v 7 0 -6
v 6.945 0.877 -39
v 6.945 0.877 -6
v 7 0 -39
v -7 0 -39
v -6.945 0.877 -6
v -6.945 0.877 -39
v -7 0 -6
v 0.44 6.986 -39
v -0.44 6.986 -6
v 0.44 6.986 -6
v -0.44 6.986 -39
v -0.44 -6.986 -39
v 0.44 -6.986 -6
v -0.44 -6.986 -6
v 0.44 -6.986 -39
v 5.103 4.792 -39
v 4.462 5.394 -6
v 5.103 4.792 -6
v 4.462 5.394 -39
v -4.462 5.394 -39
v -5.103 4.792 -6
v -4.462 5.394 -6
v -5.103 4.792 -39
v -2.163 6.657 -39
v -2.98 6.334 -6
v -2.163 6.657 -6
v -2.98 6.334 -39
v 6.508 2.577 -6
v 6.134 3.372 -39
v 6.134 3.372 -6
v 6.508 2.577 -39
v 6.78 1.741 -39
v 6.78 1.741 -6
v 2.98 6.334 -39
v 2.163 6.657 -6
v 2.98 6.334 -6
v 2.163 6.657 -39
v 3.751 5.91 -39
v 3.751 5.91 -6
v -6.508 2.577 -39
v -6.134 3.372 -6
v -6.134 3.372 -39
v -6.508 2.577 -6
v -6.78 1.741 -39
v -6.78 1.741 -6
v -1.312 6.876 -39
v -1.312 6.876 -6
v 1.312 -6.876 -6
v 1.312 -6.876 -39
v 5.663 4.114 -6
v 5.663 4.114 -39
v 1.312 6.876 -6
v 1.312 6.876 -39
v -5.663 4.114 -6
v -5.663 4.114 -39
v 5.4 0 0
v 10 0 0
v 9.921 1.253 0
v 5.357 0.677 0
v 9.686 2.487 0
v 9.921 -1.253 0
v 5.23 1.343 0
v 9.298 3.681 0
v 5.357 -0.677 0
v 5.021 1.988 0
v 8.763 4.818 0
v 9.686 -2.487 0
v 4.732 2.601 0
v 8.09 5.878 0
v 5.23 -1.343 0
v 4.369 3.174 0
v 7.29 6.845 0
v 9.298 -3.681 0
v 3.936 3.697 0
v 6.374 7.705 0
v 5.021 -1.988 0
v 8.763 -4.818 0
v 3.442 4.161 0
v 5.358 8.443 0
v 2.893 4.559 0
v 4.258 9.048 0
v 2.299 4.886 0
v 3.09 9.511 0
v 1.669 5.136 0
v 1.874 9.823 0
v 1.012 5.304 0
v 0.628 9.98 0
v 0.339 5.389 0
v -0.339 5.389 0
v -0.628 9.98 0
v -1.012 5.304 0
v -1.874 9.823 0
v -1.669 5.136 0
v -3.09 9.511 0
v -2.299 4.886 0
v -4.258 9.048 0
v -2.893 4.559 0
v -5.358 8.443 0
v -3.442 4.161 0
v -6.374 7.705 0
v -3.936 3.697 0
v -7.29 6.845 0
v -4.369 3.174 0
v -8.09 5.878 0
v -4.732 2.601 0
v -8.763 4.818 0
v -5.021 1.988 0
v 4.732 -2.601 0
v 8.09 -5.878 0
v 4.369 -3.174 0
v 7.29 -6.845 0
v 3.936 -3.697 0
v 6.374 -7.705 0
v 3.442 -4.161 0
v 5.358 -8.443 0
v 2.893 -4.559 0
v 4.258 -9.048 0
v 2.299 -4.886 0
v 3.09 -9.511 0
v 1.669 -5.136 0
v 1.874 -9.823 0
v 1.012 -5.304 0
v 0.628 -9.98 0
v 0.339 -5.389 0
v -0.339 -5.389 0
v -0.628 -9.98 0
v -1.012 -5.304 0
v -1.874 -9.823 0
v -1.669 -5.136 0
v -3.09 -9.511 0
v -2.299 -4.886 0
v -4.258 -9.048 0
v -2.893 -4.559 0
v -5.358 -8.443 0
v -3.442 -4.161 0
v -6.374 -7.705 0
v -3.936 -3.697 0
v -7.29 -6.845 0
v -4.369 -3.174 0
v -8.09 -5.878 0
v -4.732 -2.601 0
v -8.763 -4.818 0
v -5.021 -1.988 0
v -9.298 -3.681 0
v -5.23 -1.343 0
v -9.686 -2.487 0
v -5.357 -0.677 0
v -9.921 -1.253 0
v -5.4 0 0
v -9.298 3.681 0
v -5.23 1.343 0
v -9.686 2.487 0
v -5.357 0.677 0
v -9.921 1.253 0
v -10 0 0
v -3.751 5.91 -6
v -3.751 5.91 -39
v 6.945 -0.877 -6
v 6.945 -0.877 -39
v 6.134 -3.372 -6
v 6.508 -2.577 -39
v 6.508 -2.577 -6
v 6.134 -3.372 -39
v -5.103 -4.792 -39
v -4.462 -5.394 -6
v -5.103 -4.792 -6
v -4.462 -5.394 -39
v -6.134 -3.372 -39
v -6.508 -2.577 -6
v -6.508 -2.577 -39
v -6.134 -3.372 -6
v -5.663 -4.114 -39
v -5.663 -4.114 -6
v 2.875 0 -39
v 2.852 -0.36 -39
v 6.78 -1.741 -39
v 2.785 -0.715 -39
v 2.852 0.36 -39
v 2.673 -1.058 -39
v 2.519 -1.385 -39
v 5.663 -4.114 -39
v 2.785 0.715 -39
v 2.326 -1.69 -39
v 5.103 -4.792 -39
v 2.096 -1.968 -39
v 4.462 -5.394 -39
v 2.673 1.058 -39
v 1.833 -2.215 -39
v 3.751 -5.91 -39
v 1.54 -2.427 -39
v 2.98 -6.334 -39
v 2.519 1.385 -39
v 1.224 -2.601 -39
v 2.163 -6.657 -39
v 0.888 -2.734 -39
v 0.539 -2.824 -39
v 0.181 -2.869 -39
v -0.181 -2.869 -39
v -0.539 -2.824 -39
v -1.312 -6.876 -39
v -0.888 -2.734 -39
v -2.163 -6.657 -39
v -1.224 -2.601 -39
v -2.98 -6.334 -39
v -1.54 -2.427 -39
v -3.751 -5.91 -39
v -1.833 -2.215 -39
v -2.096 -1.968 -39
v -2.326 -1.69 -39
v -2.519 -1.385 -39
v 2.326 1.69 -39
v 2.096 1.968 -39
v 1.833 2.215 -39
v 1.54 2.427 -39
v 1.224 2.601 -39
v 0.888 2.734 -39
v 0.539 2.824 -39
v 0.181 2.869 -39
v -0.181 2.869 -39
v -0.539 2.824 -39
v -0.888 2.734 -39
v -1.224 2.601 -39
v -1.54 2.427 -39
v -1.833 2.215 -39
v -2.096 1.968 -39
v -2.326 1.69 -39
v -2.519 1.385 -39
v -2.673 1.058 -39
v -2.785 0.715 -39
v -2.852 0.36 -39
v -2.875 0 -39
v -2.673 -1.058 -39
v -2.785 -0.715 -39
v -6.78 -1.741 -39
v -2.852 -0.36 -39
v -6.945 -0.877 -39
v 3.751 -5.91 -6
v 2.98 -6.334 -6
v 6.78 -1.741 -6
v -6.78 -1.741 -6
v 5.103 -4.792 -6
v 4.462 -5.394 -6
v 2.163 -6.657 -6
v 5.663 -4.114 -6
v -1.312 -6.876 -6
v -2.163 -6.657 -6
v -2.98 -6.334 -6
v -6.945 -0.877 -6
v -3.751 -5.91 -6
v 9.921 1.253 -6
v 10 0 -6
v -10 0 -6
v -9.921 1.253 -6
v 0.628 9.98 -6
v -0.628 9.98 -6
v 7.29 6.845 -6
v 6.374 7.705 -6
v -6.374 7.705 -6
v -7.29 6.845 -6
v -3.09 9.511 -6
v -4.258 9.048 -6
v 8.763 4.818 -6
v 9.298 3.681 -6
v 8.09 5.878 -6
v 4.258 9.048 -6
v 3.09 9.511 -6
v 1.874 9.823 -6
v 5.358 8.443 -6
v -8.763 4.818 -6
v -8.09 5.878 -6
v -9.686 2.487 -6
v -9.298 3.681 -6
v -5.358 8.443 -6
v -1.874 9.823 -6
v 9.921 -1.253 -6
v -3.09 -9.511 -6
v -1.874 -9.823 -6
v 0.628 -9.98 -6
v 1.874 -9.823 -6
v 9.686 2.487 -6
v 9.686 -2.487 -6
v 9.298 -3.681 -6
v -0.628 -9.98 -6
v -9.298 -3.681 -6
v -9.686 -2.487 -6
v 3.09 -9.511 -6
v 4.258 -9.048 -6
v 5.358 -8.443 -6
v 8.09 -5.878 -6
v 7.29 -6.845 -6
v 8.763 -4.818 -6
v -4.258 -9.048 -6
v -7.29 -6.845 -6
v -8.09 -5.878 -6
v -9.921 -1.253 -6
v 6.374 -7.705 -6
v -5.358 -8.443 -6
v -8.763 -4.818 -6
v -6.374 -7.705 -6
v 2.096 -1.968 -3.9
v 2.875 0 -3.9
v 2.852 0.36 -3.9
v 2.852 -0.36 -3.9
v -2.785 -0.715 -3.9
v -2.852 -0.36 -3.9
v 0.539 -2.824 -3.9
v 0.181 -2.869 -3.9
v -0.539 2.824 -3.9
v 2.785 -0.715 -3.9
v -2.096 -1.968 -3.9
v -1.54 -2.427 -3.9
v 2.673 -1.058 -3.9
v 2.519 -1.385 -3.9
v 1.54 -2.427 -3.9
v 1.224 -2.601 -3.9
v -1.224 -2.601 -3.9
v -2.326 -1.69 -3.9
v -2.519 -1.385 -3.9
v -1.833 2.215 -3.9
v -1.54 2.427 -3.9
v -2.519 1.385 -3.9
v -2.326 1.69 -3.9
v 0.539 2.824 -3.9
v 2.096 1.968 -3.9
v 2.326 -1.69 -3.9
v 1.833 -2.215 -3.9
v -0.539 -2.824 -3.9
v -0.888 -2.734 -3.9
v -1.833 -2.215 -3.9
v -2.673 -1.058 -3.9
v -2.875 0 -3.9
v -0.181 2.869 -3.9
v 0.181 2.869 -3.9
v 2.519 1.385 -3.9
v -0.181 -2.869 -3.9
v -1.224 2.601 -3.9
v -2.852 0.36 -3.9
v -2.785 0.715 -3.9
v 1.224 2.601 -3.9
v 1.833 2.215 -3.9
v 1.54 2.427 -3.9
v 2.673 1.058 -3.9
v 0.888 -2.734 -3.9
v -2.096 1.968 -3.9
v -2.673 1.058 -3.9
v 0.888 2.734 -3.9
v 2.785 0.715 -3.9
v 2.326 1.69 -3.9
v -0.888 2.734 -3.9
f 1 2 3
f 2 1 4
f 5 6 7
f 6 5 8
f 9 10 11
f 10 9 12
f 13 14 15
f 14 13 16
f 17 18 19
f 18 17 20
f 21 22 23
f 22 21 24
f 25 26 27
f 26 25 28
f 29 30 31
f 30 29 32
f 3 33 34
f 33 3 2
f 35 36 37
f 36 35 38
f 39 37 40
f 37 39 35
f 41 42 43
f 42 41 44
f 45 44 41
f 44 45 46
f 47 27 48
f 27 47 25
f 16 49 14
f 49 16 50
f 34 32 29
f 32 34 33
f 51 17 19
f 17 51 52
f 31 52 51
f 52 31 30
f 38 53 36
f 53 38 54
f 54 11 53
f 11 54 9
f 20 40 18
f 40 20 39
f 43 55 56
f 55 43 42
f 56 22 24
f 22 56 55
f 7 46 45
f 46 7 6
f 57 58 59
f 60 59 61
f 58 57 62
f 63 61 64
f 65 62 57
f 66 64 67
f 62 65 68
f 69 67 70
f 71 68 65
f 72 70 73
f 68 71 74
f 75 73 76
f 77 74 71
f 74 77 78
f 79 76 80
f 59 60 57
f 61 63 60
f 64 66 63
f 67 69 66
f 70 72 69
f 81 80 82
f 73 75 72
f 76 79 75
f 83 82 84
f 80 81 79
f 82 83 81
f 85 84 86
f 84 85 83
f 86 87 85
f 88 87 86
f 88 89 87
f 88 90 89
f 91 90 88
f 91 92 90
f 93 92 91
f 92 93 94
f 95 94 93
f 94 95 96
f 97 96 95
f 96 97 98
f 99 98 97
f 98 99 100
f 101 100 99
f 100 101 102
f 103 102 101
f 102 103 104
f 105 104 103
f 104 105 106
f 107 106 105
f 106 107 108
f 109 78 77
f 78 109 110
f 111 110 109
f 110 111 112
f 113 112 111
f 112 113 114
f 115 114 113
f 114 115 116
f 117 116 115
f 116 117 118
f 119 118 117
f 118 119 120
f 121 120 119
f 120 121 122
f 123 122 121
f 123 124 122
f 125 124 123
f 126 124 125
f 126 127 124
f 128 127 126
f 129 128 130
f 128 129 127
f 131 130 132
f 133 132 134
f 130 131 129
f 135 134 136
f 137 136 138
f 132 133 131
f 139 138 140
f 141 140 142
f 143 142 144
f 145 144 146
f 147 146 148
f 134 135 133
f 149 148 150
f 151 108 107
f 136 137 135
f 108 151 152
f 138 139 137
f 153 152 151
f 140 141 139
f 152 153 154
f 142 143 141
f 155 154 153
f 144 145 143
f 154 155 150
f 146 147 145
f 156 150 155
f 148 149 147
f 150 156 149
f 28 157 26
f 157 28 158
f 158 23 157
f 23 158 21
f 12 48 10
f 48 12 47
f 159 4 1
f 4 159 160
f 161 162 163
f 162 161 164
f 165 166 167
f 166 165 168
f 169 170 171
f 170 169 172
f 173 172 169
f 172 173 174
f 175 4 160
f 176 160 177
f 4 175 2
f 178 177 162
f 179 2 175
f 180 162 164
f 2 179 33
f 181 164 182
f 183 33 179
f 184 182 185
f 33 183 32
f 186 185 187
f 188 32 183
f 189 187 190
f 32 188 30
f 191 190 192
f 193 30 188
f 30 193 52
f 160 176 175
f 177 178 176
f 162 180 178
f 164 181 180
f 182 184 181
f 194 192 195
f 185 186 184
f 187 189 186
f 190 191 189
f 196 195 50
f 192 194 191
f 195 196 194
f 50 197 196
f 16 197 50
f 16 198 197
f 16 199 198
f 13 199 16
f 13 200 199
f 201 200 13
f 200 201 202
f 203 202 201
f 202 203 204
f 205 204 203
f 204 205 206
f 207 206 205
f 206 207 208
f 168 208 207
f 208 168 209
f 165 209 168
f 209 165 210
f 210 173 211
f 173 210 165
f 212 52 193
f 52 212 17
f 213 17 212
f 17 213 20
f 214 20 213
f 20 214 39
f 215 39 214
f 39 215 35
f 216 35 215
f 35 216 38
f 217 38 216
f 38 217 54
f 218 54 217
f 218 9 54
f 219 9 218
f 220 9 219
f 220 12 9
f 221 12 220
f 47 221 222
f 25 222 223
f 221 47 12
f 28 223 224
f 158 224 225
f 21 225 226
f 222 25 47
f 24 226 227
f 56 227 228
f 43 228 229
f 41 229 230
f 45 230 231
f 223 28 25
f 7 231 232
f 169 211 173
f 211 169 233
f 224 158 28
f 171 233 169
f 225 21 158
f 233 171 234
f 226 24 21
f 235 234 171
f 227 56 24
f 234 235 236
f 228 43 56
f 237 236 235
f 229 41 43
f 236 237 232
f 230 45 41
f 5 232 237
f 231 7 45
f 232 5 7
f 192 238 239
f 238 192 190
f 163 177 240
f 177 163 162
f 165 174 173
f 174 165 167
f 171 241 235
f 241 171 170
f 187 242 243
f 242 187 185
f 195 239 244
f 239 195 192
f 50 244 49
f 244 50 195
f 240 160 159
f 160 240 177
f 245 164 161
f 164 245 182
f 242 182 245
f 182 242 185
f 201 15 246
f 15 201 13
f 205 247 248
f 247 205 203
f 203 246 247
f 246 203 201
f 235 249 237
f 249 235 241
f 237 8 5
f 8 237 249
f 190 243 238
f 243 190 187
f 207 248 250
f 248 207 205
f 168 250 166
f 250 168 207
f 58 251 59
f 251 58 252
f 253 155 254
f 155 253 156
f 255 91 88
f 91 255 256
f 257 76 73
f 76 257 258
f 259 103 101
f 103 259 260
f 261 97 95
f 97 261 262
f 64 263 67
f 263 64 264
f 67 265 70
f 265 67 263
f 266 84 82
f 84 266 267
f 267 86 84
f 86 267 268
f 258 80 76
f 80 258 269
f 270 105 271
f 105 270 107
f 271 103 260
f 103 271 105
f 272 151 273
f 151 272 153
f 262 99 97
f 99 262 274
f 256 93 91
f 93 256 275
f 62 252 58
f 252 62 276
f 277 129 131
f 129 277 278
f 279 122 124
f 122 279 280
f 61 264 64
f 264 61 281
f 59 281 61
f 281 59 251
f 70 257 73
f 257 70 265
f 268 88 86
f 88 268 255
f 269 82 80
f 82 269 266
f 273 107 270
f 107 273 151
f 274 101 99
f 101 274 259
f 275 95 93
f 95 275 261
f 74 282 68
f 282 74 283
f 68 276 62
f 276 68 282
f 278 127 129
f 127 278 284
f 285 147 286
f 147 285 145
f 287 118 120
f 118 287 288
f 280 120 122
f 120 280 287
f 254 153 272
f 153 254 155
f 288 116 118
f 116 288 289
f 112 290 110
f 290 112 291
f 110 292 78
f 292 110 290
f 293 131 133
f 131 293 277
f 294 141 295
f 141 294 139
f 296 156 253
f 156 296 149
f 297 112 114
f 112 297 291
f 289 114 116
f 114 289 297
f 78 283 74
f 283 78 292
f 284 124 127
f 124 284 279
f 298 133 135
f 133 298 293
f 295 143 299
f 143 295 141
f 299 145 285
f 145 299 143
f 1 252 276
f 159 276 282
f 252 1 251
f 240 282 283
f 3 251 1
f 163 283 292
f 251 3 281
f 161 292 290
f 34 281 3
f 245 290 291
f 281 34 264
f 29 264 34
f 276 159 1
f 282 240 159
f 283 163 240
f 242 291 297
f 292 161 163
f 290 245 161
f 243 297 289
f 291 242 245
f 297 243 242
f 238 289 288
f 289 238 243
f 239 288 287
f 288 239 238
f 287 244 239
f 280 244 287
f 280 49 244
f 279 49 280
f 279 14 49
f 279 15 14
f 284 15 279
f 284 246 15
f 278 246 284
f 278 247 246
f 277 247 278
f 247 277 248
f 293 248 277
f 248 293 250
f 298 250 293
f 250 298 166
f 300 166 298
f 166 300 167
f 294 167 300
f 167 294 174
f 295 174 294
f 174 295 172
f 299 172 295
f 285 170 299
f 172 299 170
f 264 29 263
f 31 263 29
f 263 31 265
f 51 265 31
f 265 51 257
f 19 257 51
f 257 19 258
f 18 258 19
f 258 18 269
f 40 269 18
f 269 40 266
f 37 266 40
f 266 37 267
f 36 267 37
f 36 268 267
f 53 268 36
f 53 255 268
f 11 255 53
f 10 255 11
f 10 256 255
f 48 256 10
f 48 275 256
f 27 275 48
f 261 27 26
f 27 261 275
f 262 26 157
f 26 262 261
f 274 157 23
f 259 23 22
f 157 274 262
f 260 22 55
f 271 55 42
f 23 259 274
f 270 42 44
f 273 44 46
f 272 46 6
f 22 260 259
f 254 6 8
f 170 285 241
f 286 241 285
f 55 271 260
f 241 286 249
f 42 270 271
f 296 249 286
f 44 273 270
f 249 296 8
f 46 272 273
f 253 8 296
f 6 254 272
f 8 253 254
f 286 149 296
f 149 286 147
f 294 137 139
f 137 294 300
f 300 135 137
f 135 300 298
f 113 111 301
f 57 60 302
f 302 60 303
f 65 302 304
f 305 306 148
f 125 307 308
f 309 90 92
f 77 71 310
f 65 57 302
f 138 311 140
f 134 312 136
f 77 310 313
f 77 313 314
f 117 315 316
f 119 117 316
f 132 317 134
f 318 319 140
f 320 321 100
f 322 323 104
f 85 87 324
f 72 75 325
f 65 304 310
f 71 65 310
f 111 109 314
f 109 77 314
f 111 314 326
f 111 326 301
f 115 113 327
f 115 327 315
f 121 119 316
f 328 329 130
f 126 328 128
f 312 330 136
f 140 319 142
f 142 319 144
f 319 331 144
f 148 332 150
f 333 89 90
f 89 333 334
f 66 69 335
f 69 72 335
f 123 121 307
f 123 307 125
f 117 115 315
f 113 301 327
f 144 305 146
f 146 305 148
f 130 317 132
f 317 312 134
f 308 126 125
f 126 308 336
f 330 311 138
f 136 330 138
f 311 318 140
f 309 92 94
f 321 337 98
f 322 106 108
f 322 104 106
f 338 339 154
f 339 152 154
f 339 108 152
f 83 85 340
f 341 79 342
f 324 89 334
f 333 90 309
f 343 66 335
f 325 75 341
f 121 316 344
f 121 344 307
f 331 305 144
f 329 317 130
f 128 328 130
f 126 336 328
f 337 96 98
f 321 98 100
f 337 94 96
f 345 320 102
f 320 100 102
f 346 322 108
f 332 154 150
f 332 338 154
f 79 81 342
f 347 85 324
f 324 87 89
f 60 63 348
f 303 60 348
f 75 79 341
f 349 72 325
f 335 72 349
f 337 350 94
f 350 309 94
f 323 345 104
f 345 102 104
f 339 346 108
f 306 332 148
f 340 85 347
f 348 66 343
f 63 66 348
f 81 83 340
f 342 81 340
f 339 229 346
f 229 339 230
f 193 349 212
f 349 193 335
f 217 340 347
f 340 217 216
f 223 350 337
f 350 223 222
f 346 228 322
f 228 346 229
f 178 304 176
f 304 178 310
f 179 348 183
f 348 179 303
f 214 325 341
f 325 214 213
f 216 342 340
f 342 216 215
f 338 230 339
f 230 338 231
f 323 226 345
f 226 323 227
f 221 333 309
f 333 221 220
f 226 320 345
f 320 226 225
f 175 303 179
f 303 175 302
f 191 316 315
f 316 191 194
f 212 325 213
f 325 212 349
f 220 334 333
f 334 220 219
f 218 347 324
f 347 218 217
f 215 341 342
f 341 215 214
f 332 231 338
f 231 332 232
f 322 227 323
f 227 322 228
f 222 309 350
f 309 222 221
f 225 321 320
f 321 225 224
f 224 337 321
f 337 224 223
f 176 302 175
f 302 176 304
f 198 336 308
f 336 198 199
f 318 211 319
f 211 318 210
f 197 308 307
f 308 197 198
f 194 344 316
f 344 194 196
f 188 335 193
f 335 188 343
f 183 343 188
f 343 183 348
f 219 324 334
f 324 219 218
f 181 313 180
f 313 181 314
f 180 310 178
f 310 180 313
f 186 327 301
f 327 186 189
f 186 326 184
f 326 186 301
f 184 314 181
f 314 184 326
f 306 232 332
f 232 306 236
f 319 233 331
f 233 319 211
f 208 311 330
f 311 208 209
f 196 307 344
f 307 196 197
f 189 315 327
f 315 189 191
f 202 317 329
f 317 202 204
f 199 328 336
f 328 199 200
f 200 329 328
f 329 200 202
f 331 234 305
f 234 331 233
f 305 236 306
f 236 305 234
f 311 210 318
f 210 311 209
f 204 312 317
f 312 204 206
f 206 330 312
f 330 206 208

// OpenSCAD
$fn = 50;


difference() {
	union() {
		translate(v = [0, 0, -39.0000000000]) {
			cylinder(h = 39, r = 7.0000000000);
		}
		translate(v = [0, 0, -6.0000000000]) {
			cylinder(h = 6, r = 10.0000000000);
		}
	}
	union() {
		translate(v = [0, 0, 0]) {
			rotate(a = [0, 0, 0]) {
				difference() {
					union() {
						#translate(v = [0, 0, -39.0000000000]) {
							cylinder(h = 39, r = 2.6000000000);
						}
						#translate(v = [0, 0, -3.9000000000]) {
							cylinder(h = 3.9000000000, r = 7.0000000000, r1 = 2.8750000000, r2 = 5.4000000000);
						}
						#translate(v = [0, 0, -39.0000000000]) {
							cylinder(h = 39, r = 2.8750000000);
						}
						#translate(v = [0, 0, -39.0000000000]) {
							cylinder(h = 39, r = 2.6000000000);
						}
					}
					union();
				}
			}
		}
	}
}
